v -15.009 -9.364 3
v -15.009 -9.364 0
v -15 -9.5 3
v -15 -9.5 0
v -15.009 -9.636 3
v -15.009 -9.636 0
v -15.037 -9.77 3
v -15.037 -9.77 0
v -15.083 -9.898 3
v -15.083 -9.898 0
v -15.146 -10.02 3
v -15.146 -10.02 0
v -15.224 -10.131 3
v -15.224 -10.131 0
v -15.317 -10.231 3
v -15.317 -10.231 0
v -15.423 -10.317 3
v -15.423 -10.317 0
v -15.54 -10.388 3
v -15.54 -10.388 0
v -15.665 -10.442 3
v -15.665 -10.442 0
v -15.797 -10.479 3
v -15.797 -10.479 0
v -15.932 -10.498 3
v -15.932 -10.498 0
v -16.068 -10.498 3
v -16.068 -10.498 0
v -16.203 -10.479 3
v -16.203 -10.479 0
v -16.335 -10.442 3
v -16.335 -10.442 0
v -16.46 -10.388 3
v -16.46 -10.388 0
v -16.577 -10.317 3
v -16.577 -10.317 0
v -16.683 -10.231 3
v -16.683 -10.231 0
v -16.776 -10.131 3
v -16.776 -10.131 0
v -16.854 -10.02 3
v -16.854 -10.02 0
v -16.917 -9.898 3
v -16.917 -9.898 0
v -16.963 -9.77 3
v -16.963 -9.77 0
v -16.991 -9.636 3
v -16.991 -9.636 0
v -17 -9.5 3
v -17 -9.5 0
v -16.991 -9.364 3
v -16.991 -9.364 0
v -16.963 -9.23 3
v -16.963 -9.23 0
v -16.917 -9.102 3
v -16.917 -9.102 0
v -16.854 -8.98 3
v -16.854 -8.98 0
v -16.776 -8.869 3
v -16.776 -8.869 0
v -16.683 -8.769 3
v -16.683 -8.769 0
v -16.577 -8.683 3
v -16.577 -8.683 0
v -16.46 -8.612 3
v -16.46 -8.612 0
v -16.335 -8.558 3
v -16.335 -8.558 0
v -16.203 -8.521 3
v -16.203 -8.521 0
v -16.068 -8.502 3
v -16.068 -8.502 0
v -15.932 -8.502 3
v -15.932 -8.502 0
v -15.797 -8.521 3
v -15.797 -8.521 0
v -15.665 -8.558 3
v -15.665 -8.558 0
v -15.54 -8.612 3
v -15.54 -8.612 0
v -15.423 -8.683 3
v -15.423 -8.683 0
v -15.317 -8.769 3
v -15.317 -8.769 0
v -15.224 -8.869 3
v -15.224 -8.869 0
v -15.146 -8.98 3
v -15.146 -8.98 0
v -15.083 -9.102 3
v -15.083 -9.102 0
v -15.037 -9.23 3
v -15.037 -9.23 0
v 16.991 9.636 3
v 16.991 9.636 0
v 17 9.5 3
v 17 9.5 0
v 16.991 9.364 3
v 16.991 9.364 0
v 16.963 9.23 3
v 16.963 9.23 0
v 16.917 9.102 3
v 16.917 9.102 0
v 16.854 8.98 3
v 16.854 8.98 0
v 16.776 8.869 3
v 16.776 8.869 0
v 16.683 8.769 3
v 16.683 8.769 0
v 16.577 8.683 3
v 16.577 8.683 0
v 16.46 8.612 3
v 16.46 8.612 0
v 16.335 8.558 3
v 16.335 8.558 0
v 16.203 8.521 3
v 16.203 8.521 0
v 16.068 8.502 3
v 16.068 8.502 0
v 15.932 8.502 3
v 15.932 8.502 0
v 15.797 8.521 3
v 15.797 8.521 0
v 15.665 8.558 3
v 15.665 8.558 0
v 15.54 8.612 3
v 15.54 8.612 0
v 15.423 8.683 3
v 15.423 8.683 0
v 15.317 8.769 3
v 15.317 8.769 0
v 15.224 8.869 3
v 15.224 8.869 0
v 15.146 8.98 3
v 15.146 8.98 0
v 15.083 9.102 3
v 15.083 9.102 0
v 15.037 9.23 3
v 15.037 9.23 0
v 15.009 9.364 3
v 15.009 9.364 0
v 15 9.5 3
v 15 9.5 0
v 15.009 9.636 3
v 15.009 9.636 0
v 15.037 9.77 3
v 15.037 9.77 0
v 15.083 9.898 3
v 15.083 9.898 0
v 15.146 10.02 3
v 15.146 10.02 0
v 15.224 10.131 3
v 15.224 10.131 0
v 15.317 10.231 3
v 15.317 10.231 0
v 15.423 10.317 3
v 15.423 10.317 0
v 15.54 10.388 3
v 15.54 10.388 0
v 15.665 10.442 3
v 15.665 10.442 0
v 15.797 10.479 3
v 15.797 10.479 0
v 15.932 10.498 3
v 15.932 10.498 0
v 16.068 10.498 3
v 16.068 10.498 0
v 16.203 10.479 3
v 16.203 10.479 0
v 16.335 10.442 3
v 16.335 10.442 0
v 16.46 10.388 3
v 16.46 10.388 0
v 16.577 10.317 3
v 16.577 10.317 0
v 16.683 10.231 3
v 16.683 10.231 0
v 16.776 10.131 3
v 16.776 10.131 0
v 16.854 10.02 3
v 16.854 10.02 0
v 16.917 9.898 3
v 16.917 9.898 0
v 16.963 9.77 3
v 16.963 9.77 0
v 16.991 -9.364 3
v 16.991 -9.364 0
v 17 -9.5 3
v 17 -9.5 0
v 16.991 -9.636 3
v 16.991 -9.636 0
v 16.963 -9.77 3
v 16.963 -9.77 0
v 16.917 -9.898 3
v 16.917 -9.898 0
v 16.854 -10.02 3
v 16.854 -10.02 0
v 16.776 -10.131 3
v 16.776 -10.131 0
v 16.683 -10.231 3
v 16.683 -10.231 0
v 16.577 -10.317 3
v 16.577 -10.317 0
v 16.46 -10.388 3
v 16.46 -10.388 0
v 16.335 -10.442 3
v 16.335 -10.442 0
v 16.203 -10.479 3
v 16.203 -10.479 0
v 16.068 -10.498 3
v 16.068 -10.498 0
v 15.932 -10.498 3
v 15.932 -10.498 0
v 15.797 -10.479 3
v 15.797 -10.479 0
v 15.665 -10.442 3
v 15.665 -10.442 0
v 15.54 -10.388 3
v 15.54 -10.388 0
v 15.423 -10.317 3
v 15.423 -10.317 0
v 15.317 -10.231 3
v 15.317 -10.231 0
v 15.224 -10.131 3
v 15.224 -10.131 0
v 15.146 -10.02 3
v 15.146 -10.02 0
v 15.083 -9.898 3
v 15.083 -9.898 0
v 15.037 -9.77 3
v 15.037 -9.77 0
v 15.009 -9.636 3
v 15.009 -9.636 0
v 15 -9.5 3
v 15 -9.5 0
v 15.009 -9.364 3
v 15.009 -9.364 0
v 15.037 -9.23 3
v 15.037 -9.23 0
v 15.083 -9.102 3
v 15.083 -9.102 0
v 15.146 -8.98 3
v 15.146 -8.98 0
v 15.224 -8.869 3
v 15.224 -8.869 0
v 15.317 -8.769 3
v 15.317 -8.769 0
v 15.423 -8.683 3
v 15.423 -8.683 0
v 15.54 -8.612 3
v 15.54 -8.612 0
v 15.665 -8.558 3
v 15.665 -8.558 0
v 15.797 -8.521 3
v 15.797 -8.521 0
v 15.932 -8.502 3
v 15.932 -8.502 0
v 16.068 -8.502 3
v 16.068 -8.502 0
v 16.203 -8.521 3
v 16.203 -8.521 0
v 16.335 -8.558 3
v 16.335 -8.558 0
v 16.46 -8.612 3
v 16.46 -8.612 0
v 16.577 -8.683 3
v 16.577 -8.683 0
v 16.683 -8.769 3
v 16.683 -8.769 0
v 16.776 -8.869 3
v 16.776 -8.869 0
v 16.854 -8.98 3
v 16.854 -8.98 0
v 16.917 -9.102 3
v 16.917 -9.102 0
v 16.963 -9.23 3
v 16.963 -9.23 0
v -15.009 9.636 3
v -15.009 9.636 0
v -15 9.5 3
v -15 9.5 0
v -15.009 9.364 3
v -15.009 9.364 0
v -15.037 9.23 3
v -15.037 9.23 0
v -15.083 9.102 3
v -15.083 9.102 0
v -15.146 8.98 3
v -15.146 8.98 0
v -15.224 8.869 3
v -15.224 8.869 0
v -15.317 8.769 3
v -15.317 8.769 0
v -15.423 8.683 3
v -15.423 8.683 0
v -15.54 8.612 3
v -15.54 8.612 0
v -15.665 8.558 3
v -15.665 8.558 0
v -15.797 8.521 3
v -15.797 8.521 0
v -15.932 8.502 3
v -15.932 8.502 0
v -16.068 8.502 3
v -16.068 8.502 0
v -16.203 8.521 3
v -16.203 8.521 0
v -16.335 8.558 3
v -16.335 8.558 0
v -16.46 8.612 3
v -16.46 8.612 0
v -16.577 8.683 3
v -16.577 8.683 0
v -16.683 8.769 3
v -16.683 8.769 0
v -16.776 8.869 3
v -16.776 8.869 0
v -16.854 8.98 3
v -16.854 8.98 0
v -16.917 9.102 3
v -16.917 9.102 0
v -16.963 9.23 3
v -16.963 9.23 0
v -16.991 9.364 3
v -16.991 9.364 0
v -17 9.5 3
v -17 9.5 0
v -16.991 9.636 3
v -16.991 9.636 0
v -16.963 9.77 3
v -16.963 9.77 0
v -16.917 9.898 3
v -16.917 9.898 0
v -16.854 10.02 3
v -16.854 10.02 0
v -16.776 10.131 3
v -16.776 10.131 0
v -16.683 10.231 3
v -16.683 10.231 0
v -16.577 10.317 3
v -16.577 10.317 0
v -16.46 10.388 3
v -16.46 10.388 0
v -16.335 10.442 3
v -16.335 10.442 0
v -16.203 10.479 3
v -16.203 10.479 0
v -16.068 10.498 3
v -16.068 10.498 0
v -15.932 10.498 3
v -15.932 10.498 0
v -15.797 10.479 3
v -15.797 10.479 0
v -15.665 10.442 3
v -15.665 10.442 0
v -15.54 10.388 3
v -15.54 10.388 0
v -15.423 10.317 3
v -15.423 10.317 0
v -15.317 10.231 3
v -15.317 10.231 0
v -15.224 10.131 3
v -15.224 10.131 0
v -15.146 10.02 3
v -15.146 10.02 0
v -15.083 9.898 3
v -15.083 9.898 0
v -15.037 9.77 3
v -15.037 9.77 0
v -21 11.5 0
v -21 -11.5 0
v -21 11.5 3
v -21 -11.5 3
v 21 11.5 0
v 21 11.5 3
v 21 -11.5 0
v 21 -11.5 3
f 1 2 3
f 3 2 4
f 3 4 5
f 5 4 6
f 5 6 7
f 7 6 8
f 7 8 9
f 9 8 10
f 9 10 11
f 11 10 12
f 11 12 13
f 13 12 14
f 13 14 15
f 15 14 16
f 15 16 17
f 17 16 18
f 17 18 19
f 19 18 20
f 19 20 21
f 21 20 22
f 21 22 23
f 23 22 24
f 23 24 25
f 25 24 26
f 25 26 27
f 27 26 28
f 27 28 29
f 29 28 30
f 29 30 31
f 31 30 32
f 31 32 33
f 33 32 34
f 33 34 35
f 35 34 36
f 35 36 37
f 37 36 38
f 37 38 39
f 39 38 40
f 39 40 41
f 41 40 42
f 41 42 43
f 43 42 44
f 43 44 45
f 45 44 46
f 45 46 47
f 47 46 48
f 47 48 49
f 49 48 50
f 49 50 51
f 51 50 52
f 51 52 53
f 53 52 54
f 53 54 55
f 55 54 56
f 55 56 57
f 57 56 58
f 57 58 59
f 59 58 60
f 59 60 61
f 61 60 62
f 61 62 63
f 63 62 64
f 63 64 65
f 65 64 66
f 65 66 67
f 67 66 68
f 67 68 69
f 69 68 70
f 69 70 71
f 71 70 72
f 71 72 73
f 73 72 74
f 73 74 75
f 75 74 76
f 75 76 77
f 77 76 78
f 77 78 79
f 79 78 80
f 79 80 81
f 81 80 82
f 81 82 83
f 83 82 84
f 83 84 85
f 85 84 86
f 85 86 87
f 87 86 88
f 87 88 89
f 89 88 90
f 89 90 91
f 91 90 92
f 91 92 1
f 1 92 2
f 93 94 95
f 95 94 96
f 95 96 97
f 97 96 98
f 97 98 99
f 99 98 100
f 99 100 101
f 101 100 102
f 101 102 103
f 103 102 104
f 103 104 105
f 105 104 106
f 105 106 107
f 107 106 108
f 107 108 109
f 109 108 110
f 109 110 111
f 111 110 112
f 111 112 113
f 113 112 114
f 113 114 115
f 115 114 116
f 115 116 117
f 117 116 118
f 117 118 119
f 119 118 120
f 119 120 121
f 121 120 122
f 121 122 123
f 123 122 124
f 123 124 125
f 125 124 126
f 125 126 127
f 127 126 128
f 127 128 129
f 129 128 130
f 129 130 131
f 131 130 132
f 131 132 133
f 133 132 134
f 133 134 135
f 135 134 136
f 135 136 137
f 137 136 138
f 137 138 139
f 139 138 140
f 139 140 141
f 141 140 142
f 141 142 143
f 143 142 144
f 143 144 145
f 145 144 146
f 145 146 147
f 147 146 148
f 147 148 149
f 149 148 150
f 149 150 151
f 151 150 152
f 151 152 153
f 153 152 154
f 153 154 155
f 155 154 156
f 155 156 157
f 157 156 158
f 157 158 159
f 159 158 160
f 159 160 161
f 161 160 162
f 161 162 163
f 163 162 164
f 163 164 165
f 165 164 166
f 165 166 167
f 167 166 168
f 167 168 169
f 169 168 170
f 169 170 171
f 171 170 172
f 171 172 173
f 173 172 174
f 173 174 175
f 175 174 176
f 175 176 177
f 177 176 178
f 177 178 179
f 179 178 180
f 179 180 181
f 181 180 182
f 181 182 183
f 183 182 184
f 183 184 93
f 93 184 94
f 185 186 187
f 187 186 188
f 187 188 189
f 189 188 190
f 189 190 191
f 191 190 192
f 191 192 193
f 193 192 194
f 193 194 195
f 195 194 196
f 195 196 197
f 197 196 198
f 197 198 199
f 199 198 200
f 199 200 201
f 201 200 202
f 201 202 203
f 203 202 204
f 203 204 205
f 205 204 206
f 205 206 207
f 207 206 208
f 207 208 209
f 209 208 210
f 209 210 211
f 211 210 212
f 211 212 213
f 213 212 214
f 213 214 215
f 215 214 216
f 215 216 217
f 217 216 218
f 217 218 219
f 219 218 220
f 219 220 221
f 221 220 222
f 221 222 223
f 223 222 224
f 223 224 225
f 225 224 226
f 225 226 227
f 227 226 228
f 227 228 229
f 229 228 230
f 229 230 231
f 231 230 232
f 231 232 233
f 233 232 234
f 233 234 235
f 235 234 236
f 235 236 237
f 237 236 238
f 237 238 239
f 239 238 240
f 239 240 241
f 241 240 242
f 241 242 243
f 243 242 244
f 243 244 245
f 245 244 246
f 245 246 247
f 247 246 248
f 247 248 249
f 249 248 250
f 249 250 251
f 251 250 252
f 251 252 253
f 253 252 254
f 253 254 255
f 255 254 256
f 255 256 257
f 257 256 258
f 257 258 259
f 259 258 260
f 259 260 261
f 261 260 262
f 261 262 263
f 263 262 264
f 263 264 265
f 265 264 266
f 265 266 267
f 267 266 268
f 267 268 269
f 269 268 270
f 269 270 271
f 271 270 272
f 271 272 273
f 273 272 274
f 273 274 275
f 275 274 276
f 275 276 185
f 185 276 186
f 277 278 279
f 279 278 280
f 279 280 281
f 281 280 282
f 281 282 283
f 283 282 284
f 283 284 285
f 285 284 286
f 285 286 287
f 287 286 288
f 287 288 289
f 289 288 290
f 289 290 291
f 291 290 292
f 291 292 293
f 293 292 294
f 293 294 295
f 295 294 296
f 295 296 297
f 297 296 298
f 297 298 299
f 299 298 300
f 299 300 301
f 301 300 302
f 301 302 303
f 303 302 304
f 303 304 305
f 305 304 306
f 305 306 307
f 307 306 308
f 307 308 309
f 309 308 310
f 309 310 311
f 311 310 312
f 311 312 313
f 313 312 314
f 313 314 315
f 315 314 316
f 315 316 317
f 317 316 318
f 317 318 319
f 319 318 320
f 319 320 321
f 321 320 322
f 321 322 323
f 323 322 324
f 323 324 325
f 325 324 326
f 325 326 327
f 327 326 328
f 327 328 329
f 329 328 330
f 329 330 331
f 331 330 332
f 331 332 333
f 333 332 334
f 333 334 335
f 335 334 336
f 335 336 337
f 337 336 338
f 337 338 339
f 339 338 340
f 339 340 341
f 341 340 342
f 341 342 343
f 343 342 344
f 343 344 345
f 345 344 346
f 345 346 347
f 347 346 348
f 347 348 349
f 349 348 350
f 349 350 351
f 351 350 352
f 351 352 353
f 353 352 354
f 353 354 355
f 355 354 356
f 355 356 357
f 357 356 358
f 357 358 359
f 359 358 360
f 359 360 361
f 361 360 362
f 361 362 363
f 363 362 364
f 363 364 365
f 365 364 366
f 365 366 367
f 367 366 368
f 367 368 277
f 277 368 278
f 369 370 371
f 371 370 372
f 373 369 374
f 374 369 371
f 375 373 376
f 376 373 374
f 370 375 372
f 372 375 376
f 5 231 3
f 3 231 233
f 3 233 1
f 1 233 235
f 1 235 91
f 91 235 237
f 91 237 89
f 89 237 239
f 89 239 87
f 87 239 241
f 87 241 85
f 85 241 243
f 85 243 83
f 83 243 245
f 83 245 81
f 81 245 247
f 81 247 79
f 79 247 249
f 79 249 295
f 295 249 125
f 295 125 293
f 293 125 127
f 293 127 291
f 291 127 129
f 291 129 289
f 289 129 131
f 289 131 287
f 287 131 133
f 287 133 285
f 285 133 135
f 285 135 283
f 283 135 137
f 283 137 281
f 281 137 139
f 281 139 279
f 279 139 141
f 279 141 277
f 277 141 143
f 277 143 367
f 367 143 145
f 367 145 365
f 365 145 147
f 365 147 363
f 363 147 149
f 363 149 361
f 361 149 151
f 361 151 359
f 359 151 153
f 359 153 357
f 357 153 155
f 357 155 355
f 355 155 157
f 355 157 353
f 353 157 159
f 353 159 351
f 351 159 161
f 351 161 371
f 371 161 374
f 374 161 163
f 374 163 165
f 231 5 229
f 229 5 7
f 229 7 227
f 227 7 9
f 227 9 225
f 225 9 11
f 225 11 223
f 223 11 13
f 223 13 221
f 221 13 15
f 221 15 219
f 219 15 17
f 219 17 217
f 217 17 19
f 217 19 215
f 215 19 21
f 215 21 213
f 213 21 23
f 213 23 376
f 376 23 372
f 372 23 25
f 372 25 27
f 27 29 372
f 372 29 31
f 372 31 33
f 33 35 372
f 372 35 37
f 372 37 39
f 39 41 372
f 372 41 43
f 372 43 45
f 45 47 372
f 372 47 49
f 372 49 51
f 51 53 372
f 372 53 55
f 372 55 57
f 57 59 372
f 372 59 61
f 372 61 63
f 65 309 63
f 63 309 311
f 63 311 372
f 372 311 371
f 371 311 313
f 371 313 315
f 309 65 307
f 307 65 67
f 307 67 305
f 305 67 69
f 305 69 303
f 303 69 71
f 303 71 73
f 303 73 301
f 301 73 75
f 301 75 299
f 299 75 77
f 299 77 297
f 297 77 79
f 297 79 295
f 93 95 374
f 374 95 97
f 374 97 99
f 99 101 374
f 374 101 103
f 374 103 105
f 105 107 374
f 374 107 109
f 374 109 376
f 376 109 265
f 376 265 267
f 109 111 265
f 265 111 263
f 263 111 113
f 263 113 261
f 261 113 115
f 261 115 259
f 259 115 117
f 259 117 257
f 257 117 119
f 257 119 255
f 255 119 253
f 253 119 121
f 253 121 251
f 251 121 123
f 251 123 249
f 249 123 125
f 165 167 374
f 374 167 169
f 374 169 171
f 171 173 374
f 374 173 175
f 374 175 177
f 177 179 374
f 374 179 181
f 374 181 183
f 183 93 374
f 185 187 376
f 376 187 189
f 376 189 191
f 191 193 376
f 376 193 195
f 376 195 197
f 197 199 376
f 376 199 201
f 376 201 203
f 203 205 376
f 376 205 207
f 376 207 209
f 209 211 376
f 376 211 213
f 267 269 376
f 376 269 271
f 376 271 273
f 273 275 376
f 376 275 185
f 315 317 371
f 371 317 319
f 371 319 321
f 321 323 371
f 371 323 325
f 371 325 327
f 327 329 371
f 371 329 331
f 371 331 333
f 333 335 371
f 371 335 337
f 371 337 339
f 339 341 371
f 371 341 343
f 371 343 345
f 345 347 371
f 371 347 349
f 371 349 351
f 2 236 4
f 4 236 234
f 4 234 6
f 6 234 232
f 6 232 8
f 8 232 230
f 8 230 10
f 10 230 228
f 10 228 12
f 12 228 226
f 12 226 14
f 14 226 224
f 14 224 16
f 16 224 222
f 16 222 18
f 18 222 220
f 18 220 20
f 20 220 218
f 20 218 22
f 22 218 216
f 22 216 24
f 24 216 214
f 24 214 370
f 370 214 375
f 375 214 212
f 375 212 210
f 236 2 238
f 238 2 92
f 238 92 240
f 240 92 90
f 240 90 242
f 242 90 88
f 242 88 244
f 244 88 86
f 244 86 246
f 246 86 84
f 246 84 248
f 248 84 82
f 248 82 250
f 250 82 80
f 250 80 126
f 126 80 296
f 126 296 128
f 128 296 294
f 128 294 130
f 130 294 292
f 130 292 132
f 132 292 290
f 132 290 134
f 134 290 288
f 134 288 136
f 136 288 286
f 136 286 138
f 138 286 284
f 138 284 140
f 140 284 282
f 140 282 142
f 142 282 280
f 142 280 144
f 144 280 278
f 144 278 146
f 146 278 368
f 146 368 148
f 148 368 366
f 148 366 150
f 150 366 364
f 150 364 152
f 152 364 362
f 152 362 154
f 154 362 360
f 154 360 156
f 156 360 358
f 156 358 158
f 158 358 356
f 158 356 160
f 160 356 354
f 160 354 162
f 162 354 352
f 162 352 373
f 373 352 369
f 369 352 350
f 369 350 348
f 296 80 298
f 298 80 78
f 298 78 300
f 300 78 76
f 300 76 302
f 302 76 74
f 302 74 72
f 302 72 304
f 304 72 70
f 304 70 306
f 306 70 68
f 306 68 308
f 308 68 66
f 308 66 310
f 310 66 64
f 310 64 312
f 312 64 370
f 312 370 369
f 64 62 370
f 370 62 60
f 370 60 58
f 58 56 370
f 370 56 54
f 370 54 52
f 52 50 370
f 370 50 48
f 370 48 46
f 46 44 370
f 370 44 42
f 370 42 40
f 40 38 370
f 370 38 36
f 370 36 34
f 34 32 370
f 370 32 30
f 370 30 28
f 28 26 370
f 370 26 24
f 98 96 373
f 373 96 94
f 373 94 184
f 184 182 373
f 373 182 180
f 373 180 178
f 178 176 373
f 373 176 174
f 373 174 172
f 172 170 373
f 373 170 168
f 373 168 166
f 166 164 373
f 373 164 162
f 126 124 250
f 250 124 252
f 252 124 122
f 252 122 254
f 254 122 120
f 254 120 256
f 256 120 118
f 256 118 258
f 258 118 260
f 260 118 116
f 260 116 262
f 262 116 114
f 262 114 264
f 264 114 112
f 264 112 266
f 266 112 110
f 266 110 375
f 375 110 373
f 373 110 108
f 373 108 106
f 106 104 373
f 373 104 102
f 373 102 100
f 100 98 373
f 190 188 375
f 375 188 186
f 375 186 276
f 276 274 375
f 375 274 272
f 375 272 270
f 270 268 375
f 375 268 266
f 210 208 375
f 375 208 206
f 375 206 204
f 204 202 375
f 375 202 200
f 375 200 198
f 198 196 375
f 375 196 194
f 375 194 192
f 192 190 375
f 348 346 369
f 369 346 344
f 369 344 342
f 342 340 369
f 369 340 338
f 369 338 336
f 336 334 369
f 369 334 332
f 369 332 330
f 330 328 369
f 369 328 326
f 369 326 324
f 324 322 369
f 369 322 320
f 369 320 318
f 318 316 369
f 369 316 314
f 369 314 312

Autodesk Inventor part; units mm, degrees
ref_plane "YZ Plane" through (0, 0, 0) normal (1, 0, 0) x (0, 1, 0)
ref_plane "XZ Plane" through (0, 0, 0) normal (0, 1, 0) x (-1, 0, 0)
ref_plane "XY Plane" through (0, 0, 0) normal (0, 0, 1) x (1, 0, 0)
sketch "Эскиз1" plane through (0, 0, 0) normal (0, 0, 1) x (1, 0, 0)
  line L0 (-21, -11.5) -> (21, -11.5)
  line L1 (21, -11.5) -> (21, 11.5)
  line L2 (21, 11.5) -> (-21, 11.5)
  line L3 (-21, 11.5) -> (-21, -11.5)
  line L4 (-21, -11.5) -> (21, 11.5) construction
  line L5 (21, -11.5) -> (-21, 11.5) construction
  line L6 (21, -11.5) -> (16, -11.5) construction
  line L7 (16, -11.5) -> (16, -9.5) construction
  line L8 (-21, 11.5) -> (-16, 11.5) construction
  line L9 (-16, 11.5) -> (-16, 9.5) construction
  circle A0 centre (-16, 9.5) radius 1
  circle A1 centre (16, -9.5) radius 1
  line L10 (0, 11.5) -> (0, -11.5) construction
  circle A2 centre (16, 9.5) radius 1
  circle A3 centre (-16, -9.5) radius 1
  point P0 (0, 0)
  dimension "d0" = 42
  dimension "d1" = 23
  dimension "d2" = 5
  dimension "d3" = 2
  dimension "d4" = 5
  dimension "d5" = 2
  dimension "d6" = 2
  dimension "d7" = 2
extrude "Выдавливание1" add sketch "Эскиз1" along normal blind 3
